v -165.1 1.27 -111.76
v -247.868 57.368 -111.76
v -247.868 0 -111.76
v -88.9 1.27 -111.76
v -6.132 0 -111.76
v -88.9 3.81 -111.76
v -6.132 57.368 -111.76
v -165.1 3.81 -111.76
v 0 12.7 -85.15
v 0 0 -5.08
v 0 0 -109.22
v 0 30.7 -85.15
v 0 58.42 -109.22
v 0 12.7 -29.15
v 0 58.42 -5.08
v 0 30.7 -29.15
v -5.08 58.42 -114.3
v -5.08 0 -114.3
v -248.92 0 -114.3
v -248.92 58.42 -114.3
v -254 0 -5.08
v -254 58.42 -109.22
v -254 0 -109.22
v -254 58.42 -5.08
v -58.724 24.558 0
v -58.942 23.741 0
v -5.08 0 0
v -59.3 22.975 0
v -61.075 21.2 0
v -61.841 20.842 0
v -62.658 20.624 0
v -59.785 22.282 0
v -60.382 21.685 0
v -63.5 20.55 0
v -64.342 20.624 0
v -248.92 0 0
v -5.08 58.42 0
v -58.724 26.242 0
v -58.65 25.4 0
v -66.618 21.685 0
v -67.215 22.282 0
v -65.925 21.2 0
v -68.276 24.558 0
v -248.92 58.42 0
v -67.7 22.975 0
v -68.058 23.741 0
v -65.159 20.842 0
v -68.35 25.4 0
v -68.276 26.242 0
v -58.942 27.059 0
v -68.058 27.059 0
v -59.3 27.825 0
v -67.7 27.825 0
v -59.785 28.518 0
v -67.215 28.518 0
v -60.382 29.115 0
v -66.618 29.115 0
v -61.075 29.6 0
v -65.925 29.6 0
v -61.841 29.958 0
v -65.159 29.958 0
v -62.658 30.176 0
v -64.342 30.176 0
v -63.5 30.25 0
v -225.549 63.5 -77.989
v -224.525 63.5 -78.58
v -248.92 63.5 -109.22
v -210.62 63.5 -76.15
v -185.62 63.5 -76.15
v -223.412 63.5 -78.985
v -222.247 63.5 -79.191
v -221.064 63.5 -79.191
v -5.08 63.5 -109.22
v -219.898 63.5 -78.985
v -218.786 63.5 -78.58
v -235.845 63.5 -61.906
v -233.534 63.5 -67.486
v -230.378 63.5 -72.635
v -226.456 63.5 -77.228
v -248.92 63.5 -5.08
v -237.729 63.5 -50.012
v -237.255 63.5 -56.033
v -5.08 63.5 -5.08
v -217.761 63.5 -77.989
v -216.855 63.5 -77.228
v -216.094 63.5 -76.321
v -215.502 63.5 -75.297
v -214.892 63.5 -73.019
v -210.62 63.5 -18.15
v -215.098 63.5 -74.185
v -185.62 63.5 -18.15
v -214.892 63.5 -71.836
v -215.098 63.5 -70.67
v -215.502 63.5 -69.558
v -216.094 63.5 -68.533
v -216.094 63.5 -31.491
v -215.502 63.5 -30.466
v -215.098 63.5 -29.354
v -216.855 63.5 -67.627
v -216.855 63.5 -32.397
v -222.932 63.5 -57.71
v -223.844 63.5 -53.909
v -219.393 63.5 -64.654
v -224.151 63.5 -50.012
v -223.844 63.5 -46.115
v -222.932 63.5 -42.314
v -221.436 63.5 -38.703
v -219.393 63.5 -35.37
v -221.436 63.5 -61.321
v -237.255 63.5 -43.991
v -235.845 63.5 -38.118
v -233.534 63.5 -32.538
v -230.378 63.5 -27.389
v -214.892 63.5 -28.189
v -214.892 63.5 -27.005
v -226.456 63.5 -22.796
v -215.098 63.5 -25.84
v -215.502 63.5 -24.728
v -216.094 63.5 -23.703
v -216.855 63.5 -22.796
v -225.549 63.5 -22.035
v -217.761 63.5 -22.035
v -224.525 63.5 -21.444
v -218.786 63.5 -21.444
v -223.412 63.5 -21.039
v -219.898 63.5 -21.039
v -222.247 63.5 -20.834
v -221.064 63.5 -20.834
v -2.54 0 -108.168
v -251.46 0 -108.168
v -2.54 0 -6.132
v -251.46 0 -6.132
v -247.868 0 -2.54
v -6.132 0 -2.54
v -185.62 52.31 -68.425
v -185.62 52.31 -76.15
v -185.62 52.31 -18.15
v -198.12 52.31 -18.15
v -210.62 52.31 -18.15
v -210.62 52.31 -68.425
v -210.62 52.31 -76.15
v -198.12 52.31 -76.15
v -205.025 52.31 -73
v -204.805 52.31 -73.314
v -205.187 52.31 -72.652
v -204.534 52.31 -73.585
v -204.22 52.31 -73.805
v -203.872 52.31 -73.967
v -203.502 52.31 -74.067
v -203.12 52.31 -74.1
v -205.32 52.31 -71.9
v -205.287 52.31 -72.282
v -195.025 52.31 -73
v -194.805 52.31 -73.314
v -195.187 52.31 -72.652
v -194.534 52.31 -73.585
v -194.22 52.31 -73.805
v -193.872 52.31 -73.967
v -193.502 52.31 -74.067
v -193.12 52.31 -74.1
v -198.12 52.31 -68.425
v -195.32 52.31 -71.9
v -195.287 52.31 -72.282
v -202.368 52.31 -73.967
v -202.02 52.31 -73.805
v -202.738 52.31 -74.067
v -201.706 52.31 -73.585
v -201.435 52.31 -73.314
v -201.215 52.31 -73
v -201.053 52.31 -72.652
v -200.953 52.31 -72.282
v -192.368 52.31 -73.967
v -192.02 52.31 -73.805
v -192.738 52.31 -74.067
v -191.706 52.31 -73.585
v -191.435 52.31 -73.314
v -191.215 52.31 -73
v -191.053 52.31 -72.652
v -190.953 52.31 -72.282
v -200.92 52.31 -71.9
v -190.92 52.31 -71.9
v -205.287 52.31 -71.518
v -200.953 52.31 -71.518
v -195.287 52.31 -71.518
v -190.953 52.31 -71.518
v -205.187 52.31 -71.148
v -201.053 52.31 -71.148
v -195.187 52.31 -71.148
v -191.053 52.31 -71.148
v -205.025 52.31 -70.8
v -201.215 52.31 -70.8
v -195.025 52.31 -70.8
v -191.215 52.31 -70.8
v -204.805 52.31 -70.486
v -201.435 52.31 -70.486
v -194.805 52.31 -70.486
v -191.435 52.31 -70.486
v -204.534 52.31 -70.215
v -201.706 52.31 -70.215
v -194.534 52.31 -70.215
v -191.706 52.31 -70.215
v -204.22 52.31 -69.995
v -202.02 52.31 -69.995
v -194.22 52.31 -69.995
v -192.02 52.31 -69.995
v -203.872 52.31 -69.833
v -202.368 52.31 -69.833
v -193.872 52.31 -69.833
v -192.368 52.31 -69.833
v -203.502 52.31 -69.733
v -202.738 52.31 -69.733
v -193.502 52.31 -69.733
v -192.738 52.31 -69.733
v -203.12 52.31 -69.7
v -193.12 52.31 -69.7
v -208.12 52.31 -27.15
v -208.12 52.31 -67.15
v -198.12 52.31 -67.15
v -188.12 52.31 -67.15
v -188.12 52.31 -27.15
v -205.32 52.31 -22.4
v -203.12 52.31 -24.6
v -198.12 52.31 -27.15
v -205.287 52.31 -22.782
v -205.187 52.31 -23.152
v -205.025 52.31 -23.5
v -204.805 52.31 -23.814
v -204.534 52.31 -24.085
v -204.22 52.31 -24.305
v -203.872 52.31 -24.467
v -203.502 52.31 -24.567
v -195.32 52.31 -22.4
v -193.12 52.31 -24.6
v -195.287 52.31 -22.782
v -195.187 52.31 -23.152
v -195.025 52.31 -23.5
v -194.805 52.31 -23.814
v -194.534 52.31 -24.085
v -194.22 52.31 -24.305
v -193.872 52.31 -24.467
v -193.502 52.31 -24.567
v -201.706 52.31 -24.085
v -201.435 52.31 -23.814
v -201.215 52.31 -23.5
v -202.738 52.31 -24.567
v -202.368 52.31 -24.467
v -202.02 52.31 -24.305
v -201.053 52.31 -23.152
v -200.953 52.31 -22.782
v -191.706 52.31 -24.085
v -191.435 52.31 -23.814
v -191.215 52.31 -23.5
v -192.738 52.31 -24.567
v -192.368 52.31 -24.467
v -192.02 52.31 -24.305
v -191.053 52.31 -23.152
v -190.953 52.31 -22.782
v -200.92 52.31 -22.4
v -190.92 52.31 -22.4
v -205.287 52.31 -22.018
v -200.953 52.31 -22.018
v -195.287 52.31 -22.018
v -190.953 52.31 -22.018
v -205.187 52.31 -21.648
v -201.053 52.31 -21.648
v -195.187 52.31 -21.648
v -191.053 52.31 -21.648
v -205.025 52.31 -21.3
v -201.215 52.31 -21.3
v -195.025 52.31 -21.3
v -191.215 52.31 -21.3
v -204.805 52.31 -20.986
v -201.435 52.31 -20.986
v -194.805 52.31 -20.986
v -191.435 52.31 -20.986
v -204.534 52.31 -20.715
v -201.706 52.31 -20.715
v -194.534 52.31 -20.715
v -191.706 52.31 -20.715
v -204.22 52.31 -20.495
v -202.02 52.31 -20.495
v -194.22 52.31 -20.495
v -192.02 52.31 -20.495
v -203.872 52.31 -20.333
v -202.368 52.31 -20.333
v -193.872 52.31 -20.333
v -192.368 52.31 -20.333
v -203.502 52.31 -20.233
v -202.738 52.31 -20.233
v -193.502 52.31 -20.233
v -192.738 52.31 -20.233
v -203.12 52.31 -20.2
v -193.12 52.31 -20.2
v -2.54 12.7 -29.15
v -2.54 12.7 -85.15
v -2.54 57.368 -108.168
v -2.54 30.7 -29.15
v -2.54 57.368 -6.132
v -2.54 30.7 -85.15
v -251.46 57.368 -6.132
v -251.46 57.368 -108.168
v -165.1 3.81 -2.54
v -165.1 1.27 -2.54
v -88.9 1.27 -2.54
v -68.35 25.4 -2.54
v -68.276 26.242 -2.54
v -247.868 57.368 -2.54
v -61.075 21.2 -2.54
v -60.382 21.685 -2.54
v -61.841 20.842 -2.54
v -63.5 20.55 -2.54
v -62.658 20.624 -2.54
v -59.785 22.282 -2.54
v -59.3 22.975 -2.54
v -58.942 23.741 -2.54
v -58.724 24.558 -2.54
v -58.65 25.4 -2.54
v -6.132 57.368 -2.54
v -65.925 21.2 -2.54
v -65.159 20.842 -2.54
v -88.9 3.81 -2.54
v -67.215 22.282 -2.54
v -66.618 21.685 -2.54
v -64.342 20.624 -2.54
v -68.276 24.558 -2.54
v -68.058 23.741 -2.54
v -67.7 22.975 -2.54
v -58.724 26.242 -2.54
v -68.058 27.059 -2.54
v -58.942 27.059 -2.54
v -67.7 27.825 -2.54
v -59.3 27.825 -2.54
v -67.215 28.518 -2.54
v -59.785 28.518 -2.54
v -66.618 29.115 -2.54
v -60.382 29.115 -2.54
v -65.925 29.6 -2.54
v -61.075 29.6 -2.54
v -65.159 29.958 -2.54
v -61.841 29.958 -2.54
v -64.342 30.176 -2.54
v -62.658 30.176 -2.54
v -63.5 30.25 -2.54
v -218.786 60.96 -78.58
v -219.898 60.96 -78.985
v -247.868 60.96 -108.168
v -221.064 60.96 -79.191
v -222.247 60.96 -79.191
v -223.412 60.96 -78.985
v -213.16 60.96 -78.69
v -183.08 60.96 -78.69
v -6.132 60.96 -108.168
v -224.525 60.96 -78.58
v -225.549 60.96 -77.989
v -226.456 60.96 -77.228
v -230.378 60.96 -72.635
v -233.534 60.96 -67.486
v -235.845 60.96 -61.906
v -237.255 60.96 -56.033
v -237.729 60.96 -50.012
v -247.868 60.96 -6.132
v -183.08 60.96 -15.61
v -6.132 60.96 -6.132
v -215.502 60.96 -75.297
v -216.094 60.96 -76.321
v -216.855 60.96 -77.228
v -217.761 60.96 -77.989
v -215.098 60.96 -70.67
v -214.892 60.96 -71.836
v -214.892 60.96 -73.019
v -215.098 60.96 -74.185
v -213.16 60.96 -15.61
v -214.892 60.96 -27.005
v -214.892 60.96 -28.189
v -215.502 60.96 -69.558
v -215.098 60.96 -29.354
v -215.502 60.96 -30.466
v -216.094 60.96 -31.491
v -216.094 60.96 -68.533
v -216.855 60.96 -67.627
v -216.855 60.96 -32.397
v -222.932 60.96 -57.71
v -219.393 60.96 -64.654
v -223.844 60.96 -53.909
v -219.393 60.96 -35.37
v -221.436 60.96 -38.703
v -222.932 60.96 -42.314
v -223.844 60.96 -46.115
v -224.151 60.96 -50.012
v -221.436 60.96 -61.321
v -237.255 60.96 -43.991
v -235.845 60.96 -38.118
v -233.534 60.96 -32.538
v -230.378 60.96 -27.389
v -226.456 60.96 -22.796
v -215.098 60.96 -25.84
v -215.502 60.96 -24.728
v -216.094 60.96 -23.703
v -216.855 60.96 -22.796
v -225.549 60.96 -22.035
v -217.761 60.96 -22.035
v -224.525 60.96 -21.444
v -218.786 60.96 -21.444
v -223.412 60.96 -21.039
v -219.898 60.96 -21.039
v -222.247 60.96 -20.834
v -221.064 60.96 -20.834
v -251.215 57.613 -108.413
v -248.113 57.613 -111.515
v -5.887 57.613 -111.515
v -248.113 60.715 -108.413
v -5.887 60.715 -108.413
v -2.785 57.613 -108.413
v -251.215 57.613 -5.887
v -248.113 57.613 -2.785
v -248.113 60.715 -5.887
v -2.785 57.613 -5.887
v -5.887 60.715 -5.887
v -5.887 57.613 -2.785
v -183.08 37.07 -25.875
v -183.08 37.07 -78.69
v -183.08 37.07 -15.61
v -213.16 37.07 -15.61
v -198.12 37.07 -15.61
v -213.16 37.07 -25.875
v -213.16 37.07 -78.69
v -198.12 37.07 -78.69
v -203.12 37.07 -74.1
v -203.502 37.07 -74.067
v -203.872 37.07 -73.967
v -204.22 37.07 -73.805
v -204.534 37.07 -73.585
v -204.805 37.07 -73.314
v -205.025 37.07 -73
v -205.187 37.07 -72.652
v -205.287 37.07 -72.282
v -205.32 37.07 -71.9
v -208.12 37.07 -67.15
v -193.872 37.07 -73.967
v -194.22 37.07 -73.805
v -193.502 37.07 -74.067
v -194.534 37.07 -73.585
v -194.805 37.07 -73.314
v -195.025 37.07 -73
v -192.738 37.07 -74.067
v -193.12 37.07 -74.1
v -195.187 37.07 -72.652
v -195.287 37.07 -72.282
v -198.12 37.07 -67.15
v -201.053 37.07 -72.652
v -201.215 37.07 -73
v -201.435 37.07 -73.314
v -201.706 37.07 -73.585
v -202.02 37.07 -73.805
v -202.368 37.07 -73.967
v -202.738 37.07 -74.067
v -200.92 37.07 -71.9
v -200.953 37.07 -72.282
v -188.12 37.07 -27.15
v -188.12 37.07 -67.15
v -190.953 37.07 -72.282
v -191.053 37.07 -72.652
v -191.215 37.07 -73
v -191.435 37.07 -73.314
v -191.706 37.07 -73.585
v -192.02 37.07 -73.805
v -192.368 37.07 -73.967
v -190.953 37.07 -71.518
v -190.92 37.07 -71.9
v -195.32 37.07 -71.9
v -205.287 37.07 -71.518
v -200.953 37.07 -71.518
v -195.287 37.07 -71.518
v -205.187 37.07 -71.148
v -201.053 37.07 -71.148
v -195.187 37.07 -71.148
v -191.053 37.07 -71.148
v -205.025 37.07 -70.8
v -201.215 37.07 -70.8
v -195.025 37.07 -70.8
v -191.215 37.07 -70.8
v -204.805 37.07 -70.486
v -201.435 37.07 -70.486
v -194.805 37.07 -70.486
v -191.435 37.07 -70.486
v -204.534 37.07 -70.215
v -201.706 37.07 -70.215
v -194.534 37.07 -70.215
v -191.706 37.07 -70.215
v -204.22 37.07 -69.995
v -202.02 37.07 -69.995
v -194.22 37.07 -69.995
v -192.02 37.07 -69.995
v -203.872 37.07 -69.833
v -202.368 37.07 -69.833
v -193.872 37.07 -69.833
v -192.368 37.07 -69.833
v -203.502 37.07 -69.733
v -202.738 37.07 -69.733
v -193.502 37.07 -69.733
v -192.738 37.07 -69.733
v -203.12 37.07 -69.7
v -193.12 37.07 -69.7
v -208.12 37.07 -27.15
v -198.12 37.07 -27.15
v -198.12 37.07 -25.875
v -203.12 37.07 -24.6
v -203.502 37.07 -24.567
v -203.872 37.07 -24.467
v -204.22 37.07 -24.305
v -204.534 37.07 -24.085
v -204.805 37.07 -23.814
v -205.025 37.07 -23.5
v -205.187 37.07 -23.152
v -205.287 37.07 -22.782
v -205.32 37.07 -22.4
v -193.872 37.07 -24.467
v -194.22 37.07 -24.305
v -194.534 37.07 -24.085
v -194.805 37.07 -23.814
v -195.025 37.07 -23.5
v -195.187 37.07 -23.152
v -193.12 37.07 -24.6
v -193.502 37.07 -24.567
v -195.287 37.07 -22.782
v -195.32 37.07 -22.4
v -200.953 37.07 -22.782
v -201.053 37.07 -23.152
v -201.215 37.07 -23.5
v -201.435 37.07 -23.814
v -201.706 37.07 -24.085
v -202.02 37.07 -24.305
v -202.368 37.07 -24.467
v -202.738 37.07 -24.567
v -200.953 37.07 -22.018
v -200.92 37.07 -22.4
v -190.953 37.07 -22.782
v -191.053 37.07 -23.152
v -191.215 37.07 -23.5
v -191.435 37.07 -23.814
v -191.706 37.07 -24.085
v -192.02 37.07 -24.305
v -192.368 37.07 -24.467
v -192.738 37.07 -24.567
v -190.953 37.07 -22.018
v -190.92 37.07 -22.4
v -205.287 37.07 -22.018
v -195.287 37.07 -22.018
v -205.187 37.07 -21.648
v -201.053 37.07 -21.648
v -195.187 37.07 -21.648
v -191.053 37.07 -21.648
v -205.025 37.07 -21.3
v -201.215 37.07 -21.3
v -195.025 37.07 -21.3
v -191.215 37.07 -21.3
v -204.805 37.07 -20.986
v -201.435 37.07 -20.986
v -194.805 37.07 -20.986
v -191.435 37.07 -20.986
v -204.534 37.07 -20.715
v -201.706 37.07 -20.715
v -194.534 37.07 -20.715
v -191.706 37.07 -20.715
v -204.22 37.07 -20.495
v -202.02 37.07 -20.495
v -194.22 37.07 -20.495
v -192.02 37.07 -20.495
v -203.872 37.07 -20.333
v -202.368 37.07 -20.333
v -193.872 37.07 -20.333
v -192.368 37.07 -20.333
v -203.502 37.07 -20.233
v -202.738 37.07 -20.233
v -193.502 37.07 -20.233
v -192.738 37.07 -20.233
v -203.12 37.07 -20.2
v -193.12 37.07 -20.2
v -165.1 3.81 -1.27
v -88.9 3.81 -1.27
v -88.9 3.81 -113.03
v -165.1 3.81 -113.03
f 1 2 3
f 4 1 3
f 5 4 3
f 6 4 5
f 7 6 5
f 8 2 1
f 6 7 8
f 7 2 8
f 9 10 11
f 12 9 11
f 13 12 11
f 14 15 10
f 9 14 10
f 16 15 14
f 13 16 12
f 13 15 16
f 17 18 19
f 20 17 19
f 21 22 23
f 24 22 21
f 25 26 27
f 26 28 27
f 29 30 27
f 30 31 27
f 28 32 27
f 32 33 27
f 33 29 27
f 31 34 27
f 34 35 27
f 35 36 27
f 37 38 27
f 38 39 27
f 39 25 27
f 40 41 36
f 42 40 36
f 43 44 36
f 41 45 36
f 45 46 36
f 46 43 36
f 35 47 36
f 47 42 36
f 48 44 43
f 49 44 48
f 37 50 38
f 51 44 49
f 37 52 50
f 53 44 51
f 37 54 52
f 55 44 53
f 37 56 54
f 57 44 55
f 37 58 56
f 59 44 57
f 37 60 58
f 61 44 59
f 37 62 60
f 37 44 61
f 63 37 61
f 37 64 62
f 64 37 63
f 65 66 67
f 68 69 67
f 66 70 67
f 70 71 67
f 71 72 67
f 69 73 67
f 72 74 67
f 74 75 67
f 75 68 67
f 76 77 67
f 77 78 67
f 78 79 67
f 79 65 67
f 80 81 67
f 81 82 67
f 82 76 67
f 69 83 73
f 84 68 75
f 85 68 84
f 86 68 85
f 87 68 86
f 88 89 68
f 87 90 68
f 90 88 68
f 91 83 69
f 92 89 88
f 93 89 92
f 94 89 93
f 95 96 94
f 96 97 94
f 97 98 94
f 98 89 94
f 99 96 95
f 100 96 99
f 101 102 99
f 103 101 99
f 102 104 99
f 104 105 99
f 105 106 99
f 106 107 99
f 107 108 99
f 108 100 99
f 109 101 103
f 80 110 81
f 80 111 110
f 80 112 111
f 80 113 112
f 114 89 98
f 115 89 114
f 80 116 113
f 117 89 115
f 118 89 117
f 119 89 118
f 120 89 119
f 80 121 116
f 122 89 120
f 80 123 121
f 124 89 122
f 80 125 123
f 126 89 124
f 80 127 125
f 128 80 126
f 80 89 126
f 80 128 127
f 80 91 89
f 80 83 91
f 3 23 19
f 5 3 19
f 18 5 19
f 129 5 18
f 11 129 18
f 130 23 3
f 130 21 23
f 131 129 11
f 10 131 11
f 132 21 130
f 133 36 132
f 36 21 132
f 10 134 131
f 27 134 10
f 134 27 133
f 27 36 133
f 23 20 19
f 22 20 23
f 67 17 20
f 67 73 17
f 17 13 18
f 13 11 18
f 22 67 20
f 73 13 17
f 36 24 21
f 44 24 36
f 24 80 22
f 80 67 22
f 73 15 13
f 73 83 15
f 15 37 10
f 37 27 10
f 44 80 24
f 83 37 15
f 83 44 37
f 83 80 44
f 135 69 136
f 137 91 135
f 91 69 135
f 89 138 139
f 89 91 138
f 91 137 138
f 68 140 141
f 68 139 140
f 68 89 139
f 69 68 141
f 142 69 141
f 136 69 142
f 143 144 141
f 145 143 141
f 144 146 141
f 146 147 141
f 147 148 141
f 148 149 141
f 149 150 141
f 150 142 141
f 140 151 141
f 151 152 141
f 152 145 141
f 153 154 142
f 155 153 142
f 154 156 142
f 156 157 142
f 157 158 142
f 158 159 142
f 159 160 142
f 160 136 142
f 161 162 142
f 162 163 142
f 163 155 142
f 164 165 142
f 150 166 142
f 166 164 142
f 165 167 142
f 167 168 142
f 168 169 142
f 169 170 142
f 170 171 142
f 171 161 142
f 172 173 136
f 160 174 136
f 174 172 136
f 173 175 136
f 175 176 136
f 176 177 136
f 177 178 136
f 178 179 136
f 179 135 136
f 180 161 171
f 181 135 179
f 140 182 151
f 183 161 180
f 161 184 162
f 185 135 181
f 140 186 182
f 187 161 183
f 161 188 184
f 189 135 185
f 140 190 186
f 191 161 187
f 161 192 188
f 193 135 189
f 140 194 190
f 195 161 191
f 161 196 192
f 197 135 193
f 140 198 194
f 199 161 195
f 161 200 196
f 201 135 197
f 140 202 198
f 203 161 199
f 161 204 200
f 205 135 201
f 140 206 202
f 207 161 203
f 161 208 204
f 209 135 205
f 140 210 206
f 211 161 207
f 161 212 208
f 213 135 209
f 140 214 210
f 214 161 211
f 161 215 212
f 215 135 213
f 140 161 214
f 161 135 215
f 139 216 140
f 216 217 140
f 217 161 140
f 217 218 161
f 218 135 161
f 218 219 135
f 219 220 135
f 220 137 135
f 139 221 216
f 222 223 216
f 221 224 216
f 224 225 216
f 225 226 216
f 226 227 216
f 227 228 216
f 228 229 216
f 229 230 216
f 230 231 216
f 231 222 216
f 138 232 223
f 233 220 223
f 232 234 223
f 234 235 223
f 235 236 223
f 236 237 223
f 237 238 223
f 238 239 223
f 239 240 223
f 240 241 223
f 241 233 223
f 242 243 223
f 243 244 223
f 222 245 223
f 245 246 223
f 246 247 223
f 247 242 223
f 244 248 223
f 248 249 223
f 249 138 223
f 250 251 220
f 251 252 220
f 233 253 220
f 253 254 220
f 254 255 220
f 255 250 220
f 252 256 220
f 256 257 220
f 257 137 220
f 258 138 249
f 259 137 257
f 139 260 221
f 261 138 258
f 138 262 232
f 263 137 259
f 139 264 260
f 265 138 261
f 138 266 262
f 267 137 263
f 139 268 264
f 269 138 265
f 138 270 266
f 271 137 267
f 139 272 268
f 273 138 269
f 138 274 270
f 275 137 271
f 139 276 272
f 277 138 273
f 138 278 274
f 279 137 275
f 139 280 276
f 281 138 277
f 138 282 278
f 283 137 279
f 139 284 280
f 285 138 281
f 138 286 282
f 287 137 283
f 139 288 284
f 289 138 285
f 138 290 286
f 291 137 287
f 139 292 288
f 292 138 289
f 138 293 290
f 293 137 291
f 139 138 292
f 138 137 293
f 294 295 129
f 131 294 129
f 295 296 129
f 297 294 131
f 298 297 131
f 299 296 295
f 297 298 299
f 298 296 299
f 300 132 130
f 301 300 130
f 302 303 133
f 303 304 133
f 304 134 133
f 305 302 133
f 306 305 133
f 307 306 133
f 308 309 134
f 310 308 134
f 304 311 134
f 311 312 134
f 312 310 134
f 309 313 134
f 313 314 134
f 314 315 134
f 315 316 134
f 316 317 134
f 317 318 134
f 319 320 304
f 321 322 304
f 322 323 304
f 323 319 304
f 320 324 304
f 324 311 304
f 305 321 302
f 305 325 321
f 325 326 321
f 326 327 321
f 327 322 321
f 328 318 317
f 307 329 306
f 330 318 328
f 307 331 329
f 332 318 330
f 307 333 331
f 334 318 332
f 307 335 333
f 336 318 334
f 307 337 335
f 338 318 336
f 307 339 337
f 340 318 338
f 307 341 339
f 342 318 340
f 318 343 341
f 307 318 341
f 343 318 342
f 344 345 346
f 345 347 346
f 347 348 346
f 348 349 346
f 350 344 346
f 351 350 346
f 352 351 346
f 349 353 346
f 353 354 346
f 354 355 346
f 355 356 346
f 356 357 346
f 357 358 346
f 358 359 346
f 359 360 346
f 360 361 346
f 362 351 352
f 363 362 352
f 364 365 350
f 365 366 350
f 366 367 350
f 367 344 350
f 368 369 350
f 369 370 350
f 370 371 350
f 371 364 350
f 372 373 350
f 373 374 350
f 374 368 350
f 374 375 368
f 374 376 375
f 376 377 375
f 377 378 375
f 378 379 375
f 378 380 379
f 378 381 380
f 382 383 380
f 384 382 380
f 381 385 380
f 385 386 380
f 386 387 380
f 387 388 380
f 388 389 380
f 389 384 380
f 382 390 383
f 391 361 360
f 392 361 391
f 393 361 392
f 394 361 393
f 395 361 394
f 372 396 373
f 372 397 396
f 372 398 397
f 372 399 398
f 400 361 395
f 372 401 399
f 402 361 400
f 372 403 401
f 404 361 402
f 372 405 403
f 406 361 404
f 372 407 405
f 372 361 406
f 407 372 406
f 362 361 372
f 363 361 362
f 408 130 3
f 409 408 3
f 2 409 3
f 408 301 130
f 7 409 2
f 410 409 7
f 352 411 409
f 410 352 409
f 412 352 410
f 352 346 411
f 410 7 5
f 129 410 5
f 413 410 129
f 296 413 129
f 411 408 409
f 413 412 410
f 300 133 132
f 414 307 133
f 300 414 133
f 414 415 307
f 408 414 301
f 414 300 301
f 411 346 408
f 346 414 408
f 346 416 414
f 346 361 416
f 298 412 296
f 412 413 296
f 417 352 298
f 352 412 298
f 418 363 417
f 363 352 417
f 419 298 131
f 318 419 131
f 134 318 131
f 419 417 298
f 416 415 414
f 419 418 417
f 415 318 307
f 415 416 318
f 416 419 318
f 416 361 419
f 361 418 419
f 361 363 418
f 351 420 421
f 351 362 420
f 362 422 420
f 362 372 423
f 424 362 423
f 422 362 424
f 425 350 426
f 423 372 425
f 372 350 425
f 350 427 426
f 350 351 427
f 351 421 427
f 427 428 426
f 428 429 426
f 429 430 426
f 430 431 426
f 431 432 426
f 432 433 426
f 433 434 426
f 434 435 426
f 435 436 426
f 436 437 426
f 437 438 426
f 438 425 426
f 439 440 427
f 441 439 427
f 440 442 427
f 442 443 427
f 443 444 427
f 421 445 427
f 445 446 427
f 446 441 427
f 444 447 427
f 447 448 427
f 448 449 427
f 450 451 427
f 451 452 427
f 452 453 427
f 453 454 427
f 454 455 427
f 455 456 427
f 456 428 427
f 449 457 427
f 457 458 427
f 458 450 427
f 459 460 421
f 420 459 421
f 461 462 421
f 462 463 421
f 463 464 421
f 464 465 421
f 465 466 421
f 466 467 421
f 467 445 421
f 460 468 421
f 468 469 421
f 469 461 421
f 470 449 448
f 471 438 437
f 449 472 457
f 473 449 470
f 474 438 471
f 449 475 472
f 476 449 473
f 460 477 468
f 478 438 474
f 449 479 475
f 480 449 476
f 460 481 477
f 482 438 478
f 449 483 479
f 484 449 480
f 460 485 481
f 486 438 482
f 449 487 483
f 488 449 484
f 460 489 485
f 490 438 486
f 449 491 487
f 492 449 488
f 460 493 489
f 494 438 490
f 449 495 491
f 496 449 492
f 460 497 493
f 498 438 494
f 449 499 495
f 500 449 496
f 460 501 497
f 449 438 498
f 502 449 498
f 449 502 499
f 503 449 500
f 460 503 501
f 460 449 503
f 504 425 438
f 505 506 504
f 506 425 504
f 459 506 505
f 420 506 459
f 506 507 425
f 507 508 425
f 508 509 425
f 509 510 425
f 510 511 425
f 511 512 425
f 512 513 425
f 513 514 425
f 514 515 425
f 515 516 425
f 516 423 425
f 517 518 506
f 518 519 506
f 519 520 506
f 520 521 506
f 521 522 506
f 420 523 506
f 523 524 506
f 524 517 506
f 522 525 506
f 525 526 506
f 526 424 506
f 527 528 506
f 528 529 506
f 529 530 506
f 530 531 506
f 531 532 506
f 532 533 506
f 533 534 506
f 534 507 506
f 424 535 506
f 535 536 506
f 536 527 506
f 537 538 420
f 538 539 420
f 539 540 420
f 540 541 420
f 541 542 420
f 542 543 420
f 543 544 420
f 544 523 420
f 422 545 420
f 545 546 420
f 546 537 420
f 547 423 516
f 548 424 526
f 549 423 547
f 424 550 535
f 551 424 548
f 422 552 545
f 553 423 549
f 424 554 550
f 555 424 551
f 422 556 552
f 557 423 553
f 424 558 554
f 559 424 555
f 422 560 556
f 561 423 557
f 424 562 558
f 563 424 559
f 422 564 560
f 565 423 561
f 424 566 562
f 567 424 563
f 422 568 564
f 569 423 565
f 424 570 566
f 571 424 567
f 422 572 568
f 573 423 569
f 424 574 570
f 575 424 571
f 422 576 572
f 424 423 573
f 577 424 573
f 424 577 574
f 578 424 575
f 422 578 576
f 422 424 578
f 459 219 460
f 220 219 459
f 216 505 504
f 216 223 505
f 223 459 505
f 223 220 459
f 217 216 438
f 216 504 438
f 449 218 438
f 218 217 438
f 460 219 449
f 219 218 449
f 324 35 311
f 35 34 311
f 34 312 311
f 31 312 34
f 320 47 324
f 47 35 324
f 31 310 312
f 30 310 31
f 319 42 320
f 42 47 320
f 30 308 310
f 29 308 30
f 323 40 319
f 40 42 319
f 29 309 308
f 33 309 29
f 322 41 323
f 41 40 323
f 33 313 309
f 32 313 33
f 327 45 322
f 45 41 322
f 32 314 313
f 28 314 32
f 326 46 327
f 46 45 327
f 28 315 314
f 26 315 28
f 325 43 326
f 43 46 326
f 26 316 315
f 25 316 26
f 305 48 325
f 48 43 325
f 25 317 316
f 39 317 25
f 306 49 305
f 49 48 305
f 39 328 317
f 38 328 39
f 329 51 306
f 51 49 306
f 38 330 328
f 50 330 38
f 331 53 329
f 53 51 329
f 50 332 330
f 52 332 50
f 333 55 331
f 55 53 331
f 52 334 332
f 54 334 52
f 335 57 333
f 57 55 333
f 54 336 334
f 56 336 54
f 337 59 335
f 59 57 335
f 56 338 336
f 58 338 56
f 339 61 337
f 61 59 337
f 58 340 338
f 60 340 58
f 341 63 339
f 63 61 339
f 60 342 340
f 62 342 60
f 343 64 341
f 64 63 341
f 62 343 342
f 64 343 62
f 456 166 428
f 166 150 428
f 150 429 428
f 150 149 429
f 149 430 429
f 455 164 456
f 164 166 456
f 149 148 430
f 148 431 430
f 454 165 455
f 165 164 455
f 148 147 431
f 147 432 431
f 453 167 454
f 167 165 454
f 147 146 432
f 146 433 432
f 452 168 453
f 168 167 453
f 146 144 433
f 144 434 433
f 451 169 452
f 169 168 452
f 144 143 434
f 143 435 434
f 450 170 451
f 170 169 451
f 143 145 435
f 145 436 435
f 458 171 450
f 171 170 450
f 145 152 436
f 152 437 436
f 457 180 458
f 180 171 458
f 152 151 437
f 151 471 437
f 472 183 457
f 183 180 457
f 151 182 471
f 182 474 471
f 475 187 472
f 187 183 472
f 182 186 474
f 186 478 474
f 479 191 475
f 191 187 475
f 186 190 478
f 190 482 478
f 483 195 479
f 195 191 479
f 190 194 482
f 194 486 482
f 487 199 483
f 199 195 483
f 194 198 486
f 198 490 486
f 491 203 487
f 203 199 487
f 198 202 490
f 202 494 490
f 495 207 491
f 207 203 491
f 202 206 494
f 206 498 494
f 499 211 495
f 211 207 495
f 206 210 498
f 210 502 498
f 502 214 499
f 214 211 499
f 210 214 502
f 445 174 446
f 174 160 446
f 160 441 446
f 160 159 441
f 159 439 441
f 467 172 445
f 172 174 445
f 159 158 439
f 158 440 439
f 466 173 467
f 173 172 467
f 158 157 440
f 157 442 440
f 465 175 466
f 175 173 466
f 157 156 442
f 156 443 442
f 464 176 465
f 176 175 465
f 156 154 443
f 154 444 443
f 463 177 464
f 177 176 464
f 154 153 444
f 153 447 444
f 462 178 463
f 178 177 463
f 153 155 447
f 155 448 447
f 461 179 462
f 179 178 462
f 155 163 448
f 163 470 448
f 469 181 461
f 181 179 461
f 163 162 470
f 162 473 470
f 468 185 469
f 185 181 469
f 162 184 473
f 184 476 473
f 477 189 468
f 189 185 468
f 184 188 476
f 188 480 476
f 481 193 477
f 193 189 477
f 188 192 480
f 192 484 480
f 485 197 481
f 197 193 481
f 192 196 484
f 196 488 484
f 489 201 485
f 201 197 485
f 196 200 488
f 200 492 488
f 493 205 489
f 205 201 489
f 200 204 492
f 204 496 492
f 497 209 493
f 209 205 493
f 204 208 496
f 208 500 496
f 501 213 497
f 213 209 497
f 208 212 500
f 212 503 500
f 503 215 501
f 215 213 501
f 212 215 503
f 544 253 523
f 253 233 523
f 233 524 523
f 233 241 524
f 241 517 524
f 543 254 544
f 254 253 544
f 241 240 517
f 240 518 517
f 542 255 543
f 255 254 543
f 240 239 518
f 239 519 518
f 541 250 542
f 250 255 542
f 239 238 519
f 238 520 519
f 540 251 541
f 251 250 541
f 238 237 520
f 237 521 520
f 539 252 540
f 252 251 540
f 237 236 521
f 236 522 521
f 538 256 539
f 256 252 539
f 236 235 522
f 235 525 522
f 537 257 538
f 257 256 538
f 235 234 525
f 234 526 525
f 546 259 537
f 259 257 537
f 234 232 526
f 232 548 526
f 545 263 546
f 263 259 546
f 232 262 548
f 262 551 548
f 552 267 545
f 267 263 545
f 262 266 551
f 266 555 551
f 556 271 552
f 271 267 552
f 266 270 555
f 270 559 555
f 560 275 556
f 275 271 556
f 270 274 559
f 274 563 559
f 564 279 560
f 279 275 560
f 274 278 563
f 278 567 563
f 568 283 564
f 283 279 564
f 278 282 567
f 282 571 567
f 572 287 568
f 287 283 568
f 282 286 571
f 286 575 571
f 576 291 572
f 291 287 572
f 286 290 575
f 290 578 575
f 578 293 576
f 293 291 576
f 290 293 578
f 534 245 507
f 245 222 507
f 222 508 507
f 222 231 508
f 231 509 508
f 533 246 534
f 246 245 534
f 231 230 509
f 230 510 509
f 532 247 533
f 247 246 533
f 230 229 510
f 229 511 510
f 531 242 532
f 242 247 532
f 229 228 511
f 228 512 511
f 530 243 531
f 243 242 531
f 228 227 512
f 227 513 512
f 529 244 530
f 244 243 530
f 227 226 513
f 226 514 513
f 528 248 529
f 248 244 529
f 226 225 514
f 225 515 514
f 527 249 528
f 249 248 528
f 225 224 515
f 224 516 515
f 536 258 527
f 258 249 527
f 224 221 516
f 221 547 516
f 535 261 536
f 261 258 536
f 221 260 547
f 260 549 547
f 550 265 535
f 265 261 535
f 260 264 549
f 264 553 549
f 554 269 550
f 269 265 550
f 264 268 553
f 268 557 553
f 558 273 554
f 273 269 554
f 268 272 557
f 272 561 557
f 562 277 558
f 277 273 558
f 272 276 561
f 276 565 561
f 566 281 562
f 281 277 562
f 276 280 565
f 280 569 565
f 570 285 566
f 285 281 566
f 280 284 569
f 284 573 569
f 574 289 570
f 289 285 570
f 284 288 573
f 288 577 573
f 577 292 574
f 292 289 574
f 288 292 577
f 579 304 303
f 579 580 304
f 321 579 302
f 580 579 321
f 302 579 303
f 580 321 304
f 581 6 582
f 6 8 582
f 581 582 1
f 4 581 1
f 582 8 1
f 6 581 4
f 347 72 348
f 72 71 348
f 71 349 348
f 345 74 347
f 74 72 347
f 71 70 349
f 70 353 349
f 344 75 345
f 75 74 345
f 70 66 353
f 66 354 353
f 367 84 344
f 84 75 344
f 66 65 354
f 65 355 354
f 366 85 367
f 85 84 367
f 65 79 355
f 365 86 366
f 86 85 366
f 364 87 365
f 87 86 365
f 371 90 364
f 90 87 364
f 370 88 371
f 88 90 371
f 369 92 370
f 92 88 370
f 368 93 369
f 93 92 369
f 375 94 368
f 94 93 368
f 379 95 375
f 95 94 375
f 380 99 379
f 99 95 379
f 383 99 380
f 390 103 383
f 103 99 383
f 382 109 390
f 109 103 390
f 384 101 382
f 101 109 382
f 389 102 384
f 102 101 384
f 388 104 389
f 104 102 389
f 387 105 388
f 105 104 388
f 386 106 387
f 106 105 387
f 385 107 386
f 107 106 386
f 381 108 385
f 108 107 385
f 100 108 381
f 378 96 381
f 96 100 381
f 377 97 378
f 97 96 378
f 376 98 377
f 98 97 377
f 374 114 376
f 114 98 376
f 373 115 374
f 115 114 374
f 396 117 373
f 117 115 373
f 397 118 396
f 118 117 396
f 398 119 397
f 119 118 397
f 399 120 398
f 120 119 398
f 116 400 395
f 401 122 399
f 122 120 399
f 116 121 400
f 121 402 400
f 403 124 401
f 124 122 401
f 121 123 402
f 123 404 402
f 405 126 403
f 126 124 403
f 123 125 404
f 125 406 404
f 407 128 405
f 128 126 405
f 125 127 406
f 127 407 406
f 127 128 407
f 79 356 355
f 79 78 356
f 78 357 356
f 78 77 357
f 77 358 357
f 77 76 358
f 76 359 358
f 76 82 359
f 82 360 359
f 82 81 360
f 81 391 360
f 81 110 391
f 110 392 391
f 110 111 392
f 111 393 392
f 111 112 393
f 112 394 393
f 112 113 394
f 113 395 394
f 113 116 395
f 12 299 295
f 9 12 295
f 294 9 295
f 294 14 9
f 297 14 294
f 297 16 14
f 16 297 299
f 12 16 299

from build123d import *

# Parameters (mm, degrees)
SKETCH1_W           = 254
SKETCH1_H           = 114.3
BOSS_EXTRUDE1_DEPTH = 63.5
CHAMFER1_SIZE       = 5.08
SKETCH4_W           = 25
SKETCH4_H           = 58
CUT_EXTRUDE2_DEPTH  = 11.189999972
SHELL3_T            = -2.54
SKETCH6_W           = 30.08
SKETCH6_H           = 63.08
BOSS_EXTRUDE2_DEPTH = 12.7
SKETCH5_W           = 20
SKETCH5_H           = 40
CUT_EXTRUDE5_DEPTH  = 53.310000028
SKETCH7_R           = 4.85
CUT_EXTRUDE6_DEPTH  = 25.4
SKETCH8_R           = 2.2
CUT_EXTRUDE7_DEPTH  = 53.310000028
CUT_EXTRUDE9_START  = -127
CUT_EXTRUDE9_DEPTH  = 38.1
CUT_EXTRUDE10_DEPTH = 64.5
SKETCH12_W          = 56
SKETCH12_H          = 18
CUT_EXTRUDE12_DEPTH = 2.54


with BuildPart() as part:
    # Sketch1 → Boss-Extrude1 (new body)
    with BuildSketch(Plane(origin=(0, 0, 0), x_dir=(1, 0, 0), z_dir=(0, 1, 0))):
        with Locations((-127, 57.15)):
            Rectangle(SKETCH1_W, SKETCH1_H)
    extrude(amount=BOSS_EXTRUDE1_DEPTH)

    # Chamfer1
    chamfer1_edges = [part.edges().sort_by_distance(p)[0] for p in [
        (-254, 63.5, -57.15),
        (-127, 63.5, 0),
        (0, 63.5, -57.15),
        (0, 31.75, 0),
        (-254, 31.75, 0),
        (-254, 31.75, -114.3),
        (0, 31.75, -114.3),
        (-127, 63.5, -114.3),
    ]]
    chamfer(chamfer1_edges, length=CHAMFER1_SIZE)

    # Sketch4 → Cut-Extrude2 (cut)
    with BuildSketch(Plane(origin=(0, 63.5, 0), x_dir=(1, 0, 0), z_dir=(0, 1, 0))):
        with Locations((-198.12, 47.15)):
            Rectangle(SKETCH4_W, SKETCH4_H)
    extrude(amount=-CUT_EXTRUDE2_DEPTH, mode=Mode.SUBTRACT)

    # Shell3
    shell3_openings = [part.faces().sort_by_distance(p)[0] for p in [
        (-127, 0, -57.15),
    ]]
    offset(amount=SHELL3_T, openings=shell3_openings, kind=Kind.INTERSECTION)

    # Sketch6 → Boss-Extrude2 (add)
    with BuildSketch(Plane.XZ.offset(-49.770000028)):
        with Locations((-198.12, -47.15)):
            Rectangle(SKETCH6_W, SKETCH6_H)
    extrude(amount=BOSS_EXTRUDE2_DEPTH)

    # Sketch5 → Cut-Extrude5 (cut, through all)
    with BuildSketch(Plane(origin=(0, 52.310000028, 0), x_dir=(1, 0, 0), z_dir=(0, 1, 0))):
        with Locations((-198.12, 47.15)):
            Rectangle(SKETCH5_W, SKETCH5_H)
    extrude(amount=-CUT_EXTRUDE5_DEPTH, mode=Mode.SUBTRACT)

    # Sketch7 → Cut-Extrude6 (cut)
    with BuildSketch(Plane.XY):
        with Locations((-63.5, 25.4)):
            Circle(SKETCH7_R)
    extrude(amount=-CUT_EXTRUDE6_DEPTH, mode=Mode.SUBTRACT)

    # Sketch8 → Cut-Extrude7 (cut, through all)
    with BuildSketch(Plane(origin=(0, 52.310000028, 0), x_dir=(1, 0, 0), z_dir=(0, 1, 0))):
        with Locations((-203.12, 71.9)):
            Circle(SKETCH8_R)
        with Locations((-193.12, 71.9)):
            Circle(SKETCH8_R)
        with Locations((-193.12, 22.4)):
            Circle(SKETCH8_R)
        with Locations((-203.12, 22.4)):
            Circle(SKETCH8_R)
    extrude(amount=-CUT_EXTRUDE7_DEPTH, mode=Mode.SUBTRACT)

    # Sketch9 → Cut-Extrude9 (cut, symmetric)
    with BuildSketch(Plane(origin=(0, 0, 0), x_dir=(0, 0, -1), z_dir=(1, 0, 0)).offset(CUT_EXTRUDE9_START)):
        Polygon((2.54, 0), (3.81, 0), (3.81, 3.81), (1.27, 3.81), (2.54, 1.27), align=None)
    cut_extrude9 = extrude(amount=CUT_EXTRUDE9_DEPTH, both=True, mode=Mode.SUBTRACT)

    # Mirror1: Cut-Extrude9 across plane
    add(cut_extrude9.mirror(Plane.XY.offset(-57.15)), mode=Mode.SUBTRACT)

    # Sketch10 → Cut-Extrude10 (cut, through all)
    with BuildSketch(Plane(origin=(0, 63.5, 0), x_dir=(1, 0, 0), z_dir=(0, 1, 0))):
        with BuildLine():
            ThreePointArc((-226.45590841, 77.22804441), (-237.729116487, 50.012112577), (-226.45590841, 22.796180745))
            ThreePointArc((-226.45590841, 22.796180745), (-216.854647797, 22.796180745), (-216.854647797, 32.397441358))
            ThreePointArc((-216.854647797, 32.397441358), (-224.150883513, 50.012112577), (-216.854647797, 67.626783797))
            ThreePointArc((-216.854647797, 67.626783797), (-216.854647797, 77.22804441), (-226.45590841, 77.22804441))
        make_face()
    extrude(amount=-CUT_EXTRUDE10_DEPTH, mode=Mode.SUBTRACT)

    # Sketch12 → Cut-Extrude12 (cut)
    with BuildSketch(Plane(origin=(0, 0, 0), x_dir=(0, 0, -1), z_dir=(1, 0, 0))):
        with Locations((57.15, 21.7)):
            Rectangle(SKETCH12_W, SKETCH12_H)
    extrude(amount=-CUT_EXTRUDE12_DEPTH, mode=Mode.SUBTRACT)


solid = part.part
